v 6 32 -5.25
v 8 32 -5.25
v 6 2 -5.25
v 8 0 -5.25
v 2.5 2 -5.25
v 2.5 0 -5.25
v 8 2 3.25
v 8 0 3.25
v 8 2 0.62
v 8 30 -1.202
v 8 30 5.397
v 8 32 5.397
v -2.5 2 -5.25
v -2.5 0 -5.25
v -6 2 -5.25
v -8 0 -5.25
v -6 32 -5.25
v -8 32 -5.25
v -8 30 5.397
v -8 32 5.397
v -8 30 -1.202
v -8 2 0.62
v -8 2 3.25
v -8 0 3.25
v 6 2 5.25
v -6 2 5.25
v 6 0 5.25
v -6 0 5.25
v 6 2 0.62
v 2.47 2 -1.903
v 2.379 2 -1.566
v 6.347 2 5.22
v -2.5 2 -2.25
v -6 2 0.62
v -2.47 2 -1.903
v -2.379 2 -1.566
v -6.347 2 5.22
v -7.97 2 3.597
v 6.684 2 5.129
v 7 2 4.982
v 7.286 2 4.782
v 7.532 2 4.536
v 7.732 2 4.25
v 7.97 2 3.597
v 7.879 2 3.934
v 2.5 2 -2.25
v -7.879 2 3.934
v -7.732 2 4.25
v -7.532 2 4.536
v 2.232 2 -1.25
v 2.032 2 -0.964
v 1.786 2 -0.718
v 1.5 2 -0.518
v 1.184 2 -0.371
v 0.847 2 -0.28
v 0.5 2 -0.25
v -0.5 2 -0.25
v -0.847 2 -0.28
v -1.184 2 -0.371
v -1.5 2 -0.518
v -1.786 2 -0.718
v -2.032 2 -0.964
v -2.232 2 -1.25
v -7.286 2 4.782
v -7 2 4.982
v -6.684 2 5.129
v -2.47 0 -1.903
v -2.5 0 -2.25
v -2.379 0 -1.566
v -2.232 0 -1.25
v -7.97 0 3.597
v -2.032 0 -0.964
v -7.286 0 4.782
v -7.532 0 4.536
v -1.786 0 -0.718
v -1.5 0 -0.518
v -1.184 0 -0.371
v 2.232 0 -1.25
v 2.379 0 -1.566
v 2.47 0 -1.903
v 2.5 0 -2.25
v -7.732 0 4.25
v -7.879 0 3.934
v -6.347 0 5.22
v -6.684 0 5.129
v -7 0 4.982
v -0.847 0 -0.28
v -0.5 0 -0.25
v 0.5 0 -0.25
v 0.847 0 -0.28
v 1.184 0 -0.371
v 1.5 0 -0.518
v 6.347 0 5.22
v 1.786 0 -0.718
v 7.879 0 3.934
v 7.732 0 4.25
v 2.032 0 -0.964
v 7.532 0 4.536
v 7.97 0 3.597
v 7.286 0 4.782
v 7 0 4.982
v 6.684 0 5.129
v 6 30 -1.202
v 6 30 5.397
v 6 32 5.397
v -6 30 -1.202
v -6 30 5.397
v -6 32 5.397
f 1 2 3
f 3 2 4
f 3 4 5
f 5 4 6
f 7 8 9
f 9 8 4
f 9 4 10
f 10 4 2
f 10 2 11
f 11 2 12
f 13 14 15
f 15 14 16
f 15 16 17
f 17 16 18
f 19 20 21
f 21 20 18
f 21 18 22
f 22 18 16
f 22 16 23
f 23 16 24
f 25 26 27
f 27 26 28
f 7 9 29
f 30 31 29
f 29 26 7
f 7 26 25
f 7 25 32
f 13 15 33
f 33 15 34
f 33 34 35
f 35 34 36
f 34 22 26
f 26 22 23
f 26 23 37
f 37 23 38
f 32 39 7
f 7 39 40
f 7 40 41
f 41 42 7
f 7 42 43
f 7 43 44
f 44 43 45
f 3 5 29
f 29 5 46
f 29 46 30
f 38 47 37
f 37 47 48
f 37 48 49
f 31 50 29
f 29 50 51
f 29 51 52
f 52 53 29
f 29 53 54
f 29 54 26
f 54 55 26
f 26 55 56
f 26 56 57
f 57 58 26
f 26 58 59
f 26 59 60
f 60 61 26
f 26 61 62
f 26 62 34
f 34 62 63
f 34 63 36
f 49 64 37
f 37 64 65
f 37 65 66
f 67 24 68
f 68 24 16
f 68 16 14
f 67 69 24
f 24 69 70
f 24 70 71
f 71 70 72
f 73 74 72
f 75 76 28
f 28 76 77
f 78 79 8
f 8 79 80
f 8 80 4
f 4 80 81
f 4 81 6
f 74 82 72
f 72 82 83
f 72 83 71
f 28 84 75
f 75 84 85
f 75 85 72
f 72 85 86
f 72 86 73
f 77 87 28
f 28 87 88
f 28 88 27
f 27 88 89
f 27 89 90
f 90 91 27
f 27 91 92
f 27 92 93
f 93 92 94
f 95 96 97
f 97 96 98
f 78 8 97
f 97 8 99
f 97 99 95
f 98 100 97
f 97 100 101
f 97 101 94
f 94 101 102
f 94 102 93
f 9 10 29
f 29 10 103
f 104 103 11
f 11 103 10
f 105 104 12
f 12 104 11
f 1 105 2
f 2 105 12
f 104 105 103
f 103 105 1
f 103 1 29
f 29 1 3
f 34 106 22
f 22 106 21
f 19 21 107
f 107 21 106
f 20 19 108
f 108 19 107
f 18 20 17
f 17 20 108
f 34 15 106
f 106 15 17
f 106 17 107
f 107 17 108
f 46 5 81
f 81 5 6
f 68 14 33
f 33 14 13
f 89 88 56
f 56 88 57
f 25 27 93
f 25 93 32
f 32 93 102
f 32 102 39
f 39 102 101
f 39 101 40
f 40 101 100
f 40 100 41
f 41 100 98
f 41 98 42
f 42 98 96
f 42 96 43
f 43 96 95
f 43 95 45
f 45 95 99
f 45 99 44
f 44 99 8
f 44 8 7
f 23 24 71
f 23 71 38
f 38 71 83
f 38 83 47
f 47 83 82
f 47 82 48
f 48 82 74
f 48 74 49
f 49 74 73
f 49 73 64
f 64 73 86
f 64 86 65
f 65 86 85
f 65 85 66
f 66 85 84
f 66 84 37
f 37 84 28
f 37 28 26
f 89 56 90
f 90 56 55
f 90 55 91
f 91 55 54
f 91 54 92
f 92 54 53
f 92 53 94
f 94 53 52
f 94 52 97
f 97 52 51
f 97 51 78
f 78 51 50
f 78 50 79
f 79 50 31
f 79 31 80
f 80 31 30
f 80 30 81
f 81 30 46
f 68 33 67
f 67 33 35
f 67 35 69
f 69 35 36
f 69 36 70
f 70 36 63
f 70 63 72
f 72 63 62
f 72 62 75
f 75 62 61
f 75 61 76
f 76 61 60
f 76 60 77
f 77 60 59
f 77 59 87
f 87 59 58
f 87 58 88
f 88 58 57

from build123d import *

# Parameters (mm, degrees)
SKETCH2_W          = 16
SKETCH2_H          = 10.5
BASE_DEPTH         = 2
ARM_DEPTH          = 2
LPATTERN1_COUNT    = 2
LPATTERN1_PITCH    = 14
SKETCH4_W          = 5
SKETCH4_H          = 5
CUT_EXTRUDE1_DEPTH = 34.4233972
FILLET1_R          = 2


with BuildPart() as part:
    # Sketch2 → base (new body)
    with BuildSketch(Plane(origin=(0, 0, 0), x_dir=(1, 0, 0), z_dir=(0, 1, 0))):
        Rectangle(SKETCH2_W, SKETCH2_H)
    extrude(amount=BASE_DEPTH)

    # Sketch3 → arm (add)
    with BuildSketch(Plane(origin=(8, 0, 0), x_dir=(0, 0, -1), z_dir=(1, 0, 0))):
        Polygon((5.25, 0), (5.25, 32), (-5.396617495, 32), (-5.396617495, 30), (1.201989129, 30), (-0.75, 0), align=None)
    arm = extrude(amount=-ARM_DEPTH)

    # LPattern1: arm ×2
    with Locations(*[(-i * LPATTERN1_PITCH, 0, 0) for i in range(1, LPATTERN1_COUNT)]):
        add(arm)

    # Sketch4 → Cut-Extrude1 (cut, through all)
    with BuildSketch(Plane.XZ):
        with Locations((0, -2.75)):
            Rectangle(SKETCH4_W, SKETCH4_H)
    extrude(amount=-CUT_EXTRUDE1_DEPTH, mode=Mode.SUBTRACT)

    # Fillet1
    fillet1_edges = [part.edges().sort_by_distance(p)[0] for p in [
        (2.5, 1, -0.25),
        (-2.5, 1, -0.25),
        (8, 1, 5.25),
        (-8, 1, 5.25),
    ]]
    fillet(fillet1_edges, radius=FILLET1_R)


solid = part.part
